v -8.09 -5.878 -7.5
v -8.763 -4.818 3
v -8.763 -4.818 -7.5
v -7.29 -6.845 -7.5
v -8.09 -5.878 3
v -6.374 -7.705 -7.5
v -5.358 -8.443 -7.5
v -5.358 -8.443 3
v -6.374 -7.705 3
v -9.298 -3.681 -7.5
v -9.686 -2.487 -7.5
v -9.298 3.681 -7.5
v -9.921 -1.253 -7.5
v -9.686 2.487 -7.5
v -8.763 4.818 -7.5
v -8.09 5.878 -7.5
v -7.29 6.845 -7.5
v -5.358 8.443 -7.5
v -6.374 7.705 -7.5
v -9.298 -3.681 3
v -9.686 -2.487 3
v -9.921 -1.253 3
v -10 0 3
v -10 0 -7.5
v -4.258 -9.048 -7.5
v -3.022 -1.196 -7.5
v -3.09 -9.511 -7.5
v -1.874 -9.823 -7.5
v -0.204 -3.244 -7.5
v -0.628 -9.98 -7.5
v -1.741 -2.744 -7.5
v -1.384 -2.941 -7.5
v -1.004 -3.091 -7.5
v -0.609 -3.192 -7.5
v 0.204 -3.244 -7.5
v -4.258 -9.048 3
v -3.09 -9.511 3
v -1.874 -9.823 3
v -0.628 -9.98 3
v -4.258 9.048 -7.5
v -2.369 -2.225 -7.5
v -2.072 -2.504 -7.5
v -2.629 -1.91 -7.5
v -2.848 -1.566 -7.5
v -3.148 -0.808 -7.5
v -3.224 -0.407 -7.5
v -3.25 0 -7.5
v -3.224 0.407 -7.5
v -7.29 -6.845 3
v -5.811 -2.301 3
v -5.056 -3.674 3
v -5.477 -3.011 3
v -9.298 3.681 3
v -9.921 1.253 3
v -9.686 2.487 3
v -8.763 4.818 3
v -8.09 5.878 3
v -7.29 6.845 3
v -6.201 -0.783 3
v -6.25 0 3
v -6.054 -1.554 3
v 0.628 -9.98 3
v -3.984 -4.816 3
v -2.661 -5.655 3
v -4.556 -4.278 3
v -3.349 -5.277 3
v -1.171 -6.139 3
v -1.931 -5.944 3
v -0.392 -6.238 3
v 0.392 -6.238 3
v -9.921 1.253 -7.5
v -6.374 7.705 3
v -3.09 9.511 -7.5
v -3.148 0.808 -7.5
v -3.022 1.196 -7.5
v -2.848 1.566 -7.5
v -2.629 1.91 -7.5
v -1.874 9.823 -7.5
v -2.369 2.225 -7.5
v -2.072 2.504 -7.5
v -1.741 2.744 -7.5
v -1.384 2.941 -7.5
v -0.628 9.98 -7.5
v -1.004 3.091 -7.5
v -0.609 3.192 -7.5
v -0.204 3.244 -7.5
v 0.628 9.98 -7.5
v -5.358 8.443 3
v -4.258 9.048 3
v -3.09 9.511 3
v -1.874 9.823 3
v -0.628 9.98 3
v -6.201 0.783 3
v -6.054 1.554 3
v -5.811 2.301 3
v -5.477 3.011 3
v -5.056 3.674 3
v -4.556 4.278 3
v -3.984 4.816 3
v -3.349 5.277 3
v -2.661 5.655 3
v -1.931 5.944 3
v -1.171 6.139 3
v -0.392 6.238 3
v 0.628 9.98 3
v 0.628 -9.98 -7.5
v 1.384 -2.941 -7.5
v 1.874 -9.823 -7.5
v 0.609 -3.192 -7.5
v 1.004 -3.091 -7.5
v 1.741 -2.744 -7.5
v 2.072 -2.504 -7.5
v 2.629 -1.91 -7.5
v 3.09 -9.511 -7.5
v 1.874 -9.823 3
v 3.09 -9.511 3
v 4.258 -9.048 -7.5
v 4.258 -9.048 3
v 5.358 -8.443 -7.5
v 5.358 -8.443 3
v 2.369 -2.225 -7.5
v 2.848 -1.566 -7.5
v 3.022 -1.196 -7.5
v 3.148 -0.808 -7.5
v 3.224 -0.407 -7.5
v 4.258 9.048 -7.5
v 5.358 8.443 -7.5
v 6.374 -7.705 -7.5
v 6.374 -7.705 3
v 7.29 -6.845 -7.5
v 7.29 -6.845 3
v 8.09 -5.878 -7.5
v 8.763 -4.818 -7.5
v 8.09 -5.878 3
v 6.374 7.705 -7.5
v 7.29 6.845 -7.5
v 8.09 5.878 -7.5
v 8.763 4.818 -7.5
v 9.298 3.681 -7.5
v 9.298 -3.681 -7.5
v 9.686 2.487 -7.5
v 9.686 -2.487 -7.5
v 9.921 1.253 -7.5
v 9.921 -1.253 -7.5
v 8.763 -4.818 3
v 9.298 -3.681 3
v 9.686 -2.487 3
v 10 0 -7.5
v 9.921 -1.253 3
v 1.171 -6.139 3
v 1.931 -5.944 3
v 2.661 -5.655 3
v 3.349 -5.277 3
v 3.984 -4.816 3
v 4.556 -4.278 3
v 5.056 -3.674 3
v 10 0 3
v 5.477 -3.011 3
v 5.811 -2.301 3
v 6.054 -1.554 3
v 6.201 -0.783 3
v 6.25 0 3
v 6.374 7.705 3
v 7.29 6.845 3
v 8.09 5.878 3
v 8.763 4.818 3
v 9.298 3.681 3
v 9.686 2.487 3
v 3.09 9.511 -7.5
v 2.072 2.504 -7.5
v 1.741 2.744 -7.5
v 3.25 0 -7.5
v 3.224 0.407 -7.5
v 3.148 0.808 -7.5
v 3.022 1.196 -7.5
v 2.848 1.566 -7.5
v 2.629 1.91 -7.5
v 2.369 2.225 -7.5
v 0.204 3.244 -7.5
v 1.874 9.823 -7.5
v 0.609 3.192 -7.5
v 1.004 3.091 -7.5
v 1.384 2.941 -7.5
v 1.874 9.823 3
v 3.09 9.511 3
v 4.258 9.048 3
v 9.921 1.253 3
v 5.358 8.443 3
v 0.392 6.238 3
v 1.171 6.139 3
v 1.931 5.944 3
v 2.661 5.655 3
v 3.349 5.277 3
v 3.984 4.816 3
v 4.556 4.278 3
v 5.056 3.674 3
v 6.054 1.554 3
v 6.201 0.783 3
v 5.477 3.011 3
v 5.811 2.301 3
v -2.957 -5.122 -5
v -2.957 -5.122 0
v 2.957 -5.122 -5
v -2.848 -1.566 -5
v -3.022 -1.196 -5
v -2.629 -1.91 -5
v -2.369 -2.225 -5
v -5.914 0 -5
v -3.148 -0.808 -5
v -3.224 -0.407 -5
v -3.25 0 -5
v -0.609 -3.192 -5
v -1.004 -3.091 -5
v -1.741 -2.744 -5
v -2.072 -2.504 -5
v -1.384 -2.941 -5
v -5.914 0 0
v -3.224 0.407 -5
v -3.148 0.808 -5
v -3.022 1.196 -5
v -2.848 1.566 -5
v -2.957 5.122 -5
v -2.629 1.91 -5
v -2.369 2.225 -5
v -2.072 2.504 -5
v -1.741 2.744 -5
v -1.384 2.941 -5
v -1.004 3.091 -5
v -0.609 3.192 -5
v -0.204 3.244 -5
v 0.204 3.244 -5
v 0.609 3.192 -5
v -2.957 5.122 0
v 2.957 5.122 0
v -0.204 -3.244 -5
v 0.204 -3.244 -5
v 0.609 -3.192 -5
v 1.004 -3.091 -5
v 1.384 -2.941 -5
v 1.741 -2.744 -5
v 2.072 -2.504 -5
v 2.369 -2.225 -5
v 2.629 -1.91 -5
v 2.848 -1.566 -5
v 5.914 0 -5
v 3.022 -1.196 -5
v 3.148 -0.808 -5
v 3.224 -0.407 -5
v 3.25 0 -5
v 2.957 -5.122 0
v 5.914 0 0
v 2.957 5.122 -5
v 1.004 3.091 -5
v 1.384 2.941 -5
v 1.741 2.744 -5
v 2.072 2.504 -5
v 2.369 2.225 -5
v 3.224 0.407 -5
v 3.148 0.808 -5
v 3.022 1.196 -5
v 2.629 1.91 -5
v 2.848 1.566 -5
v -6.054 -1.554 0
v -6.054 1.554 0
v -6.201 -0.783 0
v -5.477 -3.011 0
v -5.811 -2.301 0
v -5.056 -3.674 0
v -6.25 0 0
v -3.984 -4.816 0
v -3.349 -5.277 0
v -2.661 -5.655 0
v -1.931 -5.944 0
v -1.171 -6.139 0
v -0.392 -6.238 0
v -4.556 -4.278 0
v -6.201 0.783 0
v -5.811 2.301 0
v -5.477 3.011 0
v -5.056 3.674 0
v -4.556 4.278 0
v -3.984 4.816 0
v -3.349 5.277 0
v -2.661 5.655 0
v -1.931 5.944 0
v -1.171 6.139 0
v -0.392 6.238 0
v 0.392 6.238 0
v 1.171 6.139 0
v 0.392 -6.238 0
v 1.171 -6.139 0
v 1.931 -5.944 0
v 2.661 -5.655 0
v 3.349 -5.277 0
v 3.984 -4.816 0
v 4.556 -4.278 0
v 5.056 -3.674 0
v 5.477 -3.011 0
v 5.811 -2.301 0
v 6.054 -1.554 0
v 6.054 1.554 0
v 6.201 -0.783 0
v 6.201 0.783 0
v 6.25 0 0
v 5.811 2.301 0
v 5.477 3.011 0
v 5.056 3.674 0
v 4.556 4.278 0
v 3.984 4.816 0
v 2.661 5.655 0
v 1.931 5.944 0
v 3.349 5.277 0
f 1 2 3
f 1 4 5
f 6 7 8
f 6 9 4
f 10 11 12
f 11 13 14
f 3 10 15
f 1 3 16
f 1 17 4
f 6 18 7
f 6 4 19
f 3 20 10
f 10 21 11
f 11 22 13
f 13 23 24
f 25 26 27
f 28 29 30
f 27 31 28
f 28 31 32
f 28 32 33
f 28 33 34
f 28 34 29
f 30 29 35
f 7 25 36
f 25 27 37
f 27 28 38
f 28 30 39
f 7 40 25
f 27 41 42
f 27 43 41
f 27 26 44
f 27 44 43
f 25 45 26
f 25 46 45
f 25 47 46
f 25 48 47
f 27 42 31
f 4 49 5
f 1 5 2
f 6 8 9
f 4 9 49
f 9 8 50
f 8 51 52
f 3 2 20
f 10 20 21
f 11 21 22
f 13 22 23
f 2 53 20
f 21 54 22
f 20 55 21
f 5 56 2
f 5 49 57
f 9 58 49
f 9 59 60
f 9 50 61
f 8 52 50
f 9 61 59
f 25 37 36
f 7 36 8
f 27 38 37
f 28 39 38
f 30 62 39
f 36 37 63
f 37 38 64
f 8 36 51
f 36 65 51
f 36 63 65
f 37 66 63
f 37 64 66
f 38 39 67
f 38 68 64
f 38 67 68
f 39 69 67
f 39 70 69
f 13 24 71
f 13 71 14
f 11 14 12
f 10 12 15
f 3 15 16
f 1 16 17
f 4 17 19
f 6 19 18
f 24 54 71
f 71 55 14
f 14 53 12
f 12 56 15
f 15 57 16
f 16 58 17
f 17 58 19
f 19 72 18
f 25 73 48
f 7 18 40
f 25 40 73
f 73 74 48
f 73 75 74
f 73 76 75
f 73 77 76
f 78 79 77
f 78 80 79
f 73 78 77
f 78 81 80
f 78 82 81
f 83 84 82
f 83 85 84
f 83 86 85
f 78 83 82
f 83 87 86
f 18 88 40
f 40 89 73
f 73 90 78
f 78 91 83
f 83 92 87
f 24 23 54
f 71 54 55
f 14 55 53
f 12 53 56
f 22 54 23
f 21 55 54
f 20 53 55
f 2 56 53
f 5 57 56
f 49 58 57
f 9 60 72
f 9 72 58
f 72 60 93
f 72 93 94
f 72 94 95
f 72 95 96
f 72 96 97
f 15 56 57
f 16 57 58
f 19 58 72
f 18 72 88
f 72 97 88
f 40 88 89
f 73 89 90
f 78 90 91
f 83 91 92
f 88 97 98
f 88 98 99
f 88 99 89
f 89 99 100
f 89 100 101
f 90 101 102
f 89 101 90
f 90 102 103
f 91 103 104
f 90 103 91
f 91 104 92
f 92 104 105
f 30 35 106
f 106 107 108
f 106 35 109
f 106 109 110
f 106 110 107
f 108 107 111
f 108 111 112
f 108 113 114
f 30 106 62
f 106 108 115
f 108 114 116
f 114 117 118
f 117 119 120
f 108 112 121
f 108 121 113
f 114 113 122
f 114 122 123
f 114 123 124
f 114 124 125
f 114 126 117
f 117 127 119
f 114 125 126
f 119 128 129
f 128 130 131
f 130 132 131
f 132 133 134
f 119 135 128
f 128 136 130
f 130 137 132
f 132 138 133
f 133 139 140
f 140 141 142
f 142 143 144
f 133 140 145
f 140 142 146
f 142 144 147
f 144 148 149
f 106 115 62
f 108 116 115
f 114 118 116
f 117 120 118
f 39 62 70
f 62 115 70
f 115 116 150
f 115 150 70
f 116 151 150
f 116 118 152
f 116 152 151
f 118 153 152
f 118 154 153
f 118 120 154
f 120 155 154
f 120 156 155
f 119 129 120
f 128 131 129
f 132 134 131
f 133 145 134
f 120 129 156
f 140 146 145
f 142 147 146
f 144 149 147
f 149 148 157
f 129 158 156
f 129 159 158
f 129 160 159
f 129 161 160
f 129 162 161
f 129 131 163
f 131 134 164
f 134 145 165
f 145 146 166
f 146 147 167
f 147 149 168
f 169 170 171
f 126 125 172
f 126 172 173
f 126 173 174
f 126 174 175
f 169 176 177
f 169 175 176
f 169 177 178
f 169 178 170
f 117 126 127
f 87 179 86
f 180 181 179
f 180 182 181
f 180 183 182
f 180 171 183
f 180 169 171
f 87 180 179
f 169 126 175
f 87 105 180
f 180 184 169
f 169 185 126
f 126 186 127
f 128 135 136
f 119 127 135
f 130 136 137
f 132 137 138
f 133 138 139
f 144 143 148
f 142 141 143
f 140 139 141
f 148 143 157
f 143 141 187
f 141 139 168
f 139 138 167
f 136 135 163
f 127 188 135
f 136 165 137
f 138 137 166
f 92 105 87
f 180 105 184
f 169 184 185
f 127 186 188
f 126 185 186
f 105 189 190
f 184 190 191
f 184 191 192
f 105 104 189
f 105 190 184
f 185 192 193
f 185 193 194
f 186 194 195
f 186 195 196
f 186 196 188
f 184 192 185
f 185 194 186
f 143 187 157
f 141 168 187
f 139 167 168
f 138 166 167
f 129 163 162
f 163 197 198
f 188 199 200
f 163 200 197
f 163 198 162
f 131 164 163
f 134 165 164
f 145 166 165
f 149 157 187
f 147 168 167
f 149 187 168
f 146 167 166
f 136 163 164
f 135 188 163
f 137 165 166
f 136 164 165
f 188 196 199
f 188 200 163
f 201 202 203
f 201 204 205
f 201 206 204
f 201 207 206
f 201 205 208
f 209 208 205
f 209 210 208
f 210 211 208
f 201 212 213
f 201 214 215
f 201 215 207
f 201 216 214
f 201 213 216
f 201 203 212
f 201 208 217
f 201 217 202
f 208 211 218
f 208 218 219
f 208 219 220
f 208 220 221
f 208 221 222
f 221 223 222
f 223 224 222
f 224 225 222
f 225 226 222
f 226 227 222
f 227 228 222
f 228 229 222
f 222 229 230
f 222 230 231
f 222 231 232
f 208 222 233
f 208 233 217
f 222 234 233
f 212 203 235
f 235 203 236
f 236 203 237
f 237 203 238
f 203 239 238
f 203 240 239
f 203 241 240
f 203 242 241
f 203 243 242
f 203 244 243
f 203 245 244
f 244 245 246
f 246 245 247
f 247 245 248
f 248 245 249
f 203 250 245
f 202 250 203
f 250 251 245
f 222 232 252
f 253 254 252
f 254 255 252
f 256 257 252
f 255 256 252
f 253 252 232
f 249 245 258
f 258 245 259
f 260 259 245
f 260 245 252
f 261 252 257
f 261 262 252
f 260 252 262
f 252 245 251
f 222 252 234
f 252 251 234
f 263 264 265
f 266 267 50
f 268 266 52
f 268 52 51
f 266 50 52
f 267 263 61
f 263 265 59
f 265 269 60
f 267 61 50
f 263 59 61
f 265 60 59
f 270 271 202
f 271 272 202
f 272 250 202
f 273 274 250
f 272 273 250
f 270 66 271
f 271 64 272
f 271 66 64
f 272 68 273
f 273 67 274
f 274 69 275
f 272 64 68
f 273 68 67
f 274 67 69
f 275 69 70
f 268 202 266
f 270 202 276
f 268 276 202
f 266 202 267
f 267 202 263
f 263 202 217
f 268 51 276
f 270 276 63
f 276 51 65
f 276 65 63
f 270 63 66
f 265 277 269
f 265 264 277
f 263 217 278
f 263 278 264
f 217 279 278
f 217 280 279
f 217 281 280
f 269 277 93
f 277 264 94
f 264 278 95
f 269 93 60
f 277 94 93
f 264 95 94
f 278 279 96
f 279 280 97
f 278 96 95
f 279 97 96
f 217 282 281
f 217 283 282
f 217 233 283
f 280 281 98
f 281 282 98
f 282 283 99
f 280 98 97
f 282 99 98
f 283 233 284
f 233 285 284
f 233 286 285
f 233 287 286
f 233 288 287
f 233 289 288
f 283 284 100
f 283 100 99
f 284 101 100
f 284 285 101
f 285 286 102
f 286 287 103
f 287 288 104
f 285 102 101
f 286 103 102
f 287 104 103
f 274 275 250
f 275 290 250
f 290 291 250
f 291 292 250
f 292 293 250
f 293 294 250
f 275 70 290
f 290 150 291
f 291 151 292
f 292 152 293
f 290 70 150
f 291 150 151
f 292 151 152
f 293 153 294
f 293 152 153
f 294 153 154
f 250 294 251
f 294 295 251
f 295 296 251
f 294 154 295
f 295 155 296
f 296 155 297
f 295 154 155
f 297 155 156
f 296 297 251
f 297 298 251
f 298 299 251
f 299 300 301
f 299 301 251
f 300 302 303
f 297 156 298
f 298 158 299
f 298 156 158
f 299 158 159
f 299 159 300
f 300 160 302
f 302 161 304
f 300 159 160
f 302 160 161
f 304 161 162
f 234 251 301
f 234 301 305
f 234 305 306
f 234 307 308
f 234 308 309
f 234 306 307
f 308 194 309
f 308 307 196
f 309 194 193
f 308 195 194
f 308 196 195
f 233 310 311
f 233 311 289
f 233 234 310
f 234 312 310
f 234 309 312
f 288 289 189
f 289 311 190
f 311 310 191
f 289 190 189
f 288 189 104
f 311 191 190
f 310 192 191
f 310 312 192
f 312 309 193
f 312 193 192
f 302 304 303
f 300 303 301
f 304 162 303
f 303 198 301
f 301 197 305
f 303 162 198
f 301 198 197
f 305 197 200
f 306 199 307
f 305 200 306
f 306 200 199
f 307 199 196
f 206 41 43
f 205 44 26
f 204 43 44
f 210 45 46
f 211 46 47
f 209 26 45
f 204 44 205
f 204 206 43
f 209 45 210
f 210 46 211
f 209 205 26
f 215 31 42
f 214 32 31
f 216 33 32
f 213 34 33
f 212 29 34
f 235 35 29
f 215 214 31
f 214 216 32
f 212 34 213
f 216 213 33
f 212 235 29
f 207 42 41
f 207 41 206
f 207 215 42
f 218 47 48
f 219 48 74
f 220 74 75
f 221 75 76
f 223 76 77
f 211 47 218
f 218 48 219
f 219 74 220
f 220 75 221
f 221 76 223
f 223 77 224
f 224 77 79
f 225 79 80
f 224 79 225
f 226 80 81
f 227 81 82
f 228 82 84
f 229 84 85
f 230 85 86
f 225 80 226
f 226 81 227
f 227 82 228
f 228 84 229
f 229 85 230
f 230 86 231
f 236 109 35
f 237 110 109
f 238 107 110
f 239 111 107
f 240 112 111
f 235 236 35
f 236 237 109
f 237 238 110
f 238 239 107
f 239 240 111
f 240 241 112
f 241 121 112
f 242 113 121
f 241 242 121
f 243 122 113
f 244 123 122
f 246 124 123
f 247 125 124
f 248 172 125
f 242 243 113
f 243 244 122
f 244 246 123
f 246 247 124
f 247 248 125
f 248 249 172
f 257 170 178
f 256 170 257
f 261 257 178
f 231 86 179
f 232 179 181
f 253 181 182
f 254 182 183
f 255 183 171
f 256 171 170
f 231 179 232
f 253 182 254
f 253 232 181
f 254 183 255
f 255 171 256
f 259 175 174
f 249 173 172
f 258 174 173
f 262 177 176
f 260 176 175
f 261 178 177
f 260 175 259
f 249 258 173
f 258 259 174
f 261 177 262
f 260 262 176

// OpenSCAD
$fn = 50;

difference() {
	union() {
		translate(v = [0, 0, -7.5]) {
			cylinder(h = 10.5, r = 10.0);
		}
		#translate(v = [0, 0, -9.0]) {
			cylinder(h = 9, r = 2.875);
		}
	}
	union() {
		translate(v = [0, 0, 0]) {
			rotate(a = [0, 0, 0]) {
				difference() {
					union() {
						translate(v = [0, 0, -5]) {
							linear_extrude(height = 5) {
								polygon(points = [[5.914249999999999, 0.0], [2.957125, 5.1218907443321156], [-2.9571249999999982, 5.1218907443321156], [-5.914249999999999, 7.242867331857232e-16], [-2.9571250000000022, -5.121890744332115], [2.9571249999999956, -5.121890744332118]]);
							}
						}
					}
					union();
				}
			}
		}
		#cylinder(h = 3, r = 6.25);
		#translate(v = [0, 0, -100.0]) {
			cylinder(h = 200, r = 3.25);
		}
	}
}
